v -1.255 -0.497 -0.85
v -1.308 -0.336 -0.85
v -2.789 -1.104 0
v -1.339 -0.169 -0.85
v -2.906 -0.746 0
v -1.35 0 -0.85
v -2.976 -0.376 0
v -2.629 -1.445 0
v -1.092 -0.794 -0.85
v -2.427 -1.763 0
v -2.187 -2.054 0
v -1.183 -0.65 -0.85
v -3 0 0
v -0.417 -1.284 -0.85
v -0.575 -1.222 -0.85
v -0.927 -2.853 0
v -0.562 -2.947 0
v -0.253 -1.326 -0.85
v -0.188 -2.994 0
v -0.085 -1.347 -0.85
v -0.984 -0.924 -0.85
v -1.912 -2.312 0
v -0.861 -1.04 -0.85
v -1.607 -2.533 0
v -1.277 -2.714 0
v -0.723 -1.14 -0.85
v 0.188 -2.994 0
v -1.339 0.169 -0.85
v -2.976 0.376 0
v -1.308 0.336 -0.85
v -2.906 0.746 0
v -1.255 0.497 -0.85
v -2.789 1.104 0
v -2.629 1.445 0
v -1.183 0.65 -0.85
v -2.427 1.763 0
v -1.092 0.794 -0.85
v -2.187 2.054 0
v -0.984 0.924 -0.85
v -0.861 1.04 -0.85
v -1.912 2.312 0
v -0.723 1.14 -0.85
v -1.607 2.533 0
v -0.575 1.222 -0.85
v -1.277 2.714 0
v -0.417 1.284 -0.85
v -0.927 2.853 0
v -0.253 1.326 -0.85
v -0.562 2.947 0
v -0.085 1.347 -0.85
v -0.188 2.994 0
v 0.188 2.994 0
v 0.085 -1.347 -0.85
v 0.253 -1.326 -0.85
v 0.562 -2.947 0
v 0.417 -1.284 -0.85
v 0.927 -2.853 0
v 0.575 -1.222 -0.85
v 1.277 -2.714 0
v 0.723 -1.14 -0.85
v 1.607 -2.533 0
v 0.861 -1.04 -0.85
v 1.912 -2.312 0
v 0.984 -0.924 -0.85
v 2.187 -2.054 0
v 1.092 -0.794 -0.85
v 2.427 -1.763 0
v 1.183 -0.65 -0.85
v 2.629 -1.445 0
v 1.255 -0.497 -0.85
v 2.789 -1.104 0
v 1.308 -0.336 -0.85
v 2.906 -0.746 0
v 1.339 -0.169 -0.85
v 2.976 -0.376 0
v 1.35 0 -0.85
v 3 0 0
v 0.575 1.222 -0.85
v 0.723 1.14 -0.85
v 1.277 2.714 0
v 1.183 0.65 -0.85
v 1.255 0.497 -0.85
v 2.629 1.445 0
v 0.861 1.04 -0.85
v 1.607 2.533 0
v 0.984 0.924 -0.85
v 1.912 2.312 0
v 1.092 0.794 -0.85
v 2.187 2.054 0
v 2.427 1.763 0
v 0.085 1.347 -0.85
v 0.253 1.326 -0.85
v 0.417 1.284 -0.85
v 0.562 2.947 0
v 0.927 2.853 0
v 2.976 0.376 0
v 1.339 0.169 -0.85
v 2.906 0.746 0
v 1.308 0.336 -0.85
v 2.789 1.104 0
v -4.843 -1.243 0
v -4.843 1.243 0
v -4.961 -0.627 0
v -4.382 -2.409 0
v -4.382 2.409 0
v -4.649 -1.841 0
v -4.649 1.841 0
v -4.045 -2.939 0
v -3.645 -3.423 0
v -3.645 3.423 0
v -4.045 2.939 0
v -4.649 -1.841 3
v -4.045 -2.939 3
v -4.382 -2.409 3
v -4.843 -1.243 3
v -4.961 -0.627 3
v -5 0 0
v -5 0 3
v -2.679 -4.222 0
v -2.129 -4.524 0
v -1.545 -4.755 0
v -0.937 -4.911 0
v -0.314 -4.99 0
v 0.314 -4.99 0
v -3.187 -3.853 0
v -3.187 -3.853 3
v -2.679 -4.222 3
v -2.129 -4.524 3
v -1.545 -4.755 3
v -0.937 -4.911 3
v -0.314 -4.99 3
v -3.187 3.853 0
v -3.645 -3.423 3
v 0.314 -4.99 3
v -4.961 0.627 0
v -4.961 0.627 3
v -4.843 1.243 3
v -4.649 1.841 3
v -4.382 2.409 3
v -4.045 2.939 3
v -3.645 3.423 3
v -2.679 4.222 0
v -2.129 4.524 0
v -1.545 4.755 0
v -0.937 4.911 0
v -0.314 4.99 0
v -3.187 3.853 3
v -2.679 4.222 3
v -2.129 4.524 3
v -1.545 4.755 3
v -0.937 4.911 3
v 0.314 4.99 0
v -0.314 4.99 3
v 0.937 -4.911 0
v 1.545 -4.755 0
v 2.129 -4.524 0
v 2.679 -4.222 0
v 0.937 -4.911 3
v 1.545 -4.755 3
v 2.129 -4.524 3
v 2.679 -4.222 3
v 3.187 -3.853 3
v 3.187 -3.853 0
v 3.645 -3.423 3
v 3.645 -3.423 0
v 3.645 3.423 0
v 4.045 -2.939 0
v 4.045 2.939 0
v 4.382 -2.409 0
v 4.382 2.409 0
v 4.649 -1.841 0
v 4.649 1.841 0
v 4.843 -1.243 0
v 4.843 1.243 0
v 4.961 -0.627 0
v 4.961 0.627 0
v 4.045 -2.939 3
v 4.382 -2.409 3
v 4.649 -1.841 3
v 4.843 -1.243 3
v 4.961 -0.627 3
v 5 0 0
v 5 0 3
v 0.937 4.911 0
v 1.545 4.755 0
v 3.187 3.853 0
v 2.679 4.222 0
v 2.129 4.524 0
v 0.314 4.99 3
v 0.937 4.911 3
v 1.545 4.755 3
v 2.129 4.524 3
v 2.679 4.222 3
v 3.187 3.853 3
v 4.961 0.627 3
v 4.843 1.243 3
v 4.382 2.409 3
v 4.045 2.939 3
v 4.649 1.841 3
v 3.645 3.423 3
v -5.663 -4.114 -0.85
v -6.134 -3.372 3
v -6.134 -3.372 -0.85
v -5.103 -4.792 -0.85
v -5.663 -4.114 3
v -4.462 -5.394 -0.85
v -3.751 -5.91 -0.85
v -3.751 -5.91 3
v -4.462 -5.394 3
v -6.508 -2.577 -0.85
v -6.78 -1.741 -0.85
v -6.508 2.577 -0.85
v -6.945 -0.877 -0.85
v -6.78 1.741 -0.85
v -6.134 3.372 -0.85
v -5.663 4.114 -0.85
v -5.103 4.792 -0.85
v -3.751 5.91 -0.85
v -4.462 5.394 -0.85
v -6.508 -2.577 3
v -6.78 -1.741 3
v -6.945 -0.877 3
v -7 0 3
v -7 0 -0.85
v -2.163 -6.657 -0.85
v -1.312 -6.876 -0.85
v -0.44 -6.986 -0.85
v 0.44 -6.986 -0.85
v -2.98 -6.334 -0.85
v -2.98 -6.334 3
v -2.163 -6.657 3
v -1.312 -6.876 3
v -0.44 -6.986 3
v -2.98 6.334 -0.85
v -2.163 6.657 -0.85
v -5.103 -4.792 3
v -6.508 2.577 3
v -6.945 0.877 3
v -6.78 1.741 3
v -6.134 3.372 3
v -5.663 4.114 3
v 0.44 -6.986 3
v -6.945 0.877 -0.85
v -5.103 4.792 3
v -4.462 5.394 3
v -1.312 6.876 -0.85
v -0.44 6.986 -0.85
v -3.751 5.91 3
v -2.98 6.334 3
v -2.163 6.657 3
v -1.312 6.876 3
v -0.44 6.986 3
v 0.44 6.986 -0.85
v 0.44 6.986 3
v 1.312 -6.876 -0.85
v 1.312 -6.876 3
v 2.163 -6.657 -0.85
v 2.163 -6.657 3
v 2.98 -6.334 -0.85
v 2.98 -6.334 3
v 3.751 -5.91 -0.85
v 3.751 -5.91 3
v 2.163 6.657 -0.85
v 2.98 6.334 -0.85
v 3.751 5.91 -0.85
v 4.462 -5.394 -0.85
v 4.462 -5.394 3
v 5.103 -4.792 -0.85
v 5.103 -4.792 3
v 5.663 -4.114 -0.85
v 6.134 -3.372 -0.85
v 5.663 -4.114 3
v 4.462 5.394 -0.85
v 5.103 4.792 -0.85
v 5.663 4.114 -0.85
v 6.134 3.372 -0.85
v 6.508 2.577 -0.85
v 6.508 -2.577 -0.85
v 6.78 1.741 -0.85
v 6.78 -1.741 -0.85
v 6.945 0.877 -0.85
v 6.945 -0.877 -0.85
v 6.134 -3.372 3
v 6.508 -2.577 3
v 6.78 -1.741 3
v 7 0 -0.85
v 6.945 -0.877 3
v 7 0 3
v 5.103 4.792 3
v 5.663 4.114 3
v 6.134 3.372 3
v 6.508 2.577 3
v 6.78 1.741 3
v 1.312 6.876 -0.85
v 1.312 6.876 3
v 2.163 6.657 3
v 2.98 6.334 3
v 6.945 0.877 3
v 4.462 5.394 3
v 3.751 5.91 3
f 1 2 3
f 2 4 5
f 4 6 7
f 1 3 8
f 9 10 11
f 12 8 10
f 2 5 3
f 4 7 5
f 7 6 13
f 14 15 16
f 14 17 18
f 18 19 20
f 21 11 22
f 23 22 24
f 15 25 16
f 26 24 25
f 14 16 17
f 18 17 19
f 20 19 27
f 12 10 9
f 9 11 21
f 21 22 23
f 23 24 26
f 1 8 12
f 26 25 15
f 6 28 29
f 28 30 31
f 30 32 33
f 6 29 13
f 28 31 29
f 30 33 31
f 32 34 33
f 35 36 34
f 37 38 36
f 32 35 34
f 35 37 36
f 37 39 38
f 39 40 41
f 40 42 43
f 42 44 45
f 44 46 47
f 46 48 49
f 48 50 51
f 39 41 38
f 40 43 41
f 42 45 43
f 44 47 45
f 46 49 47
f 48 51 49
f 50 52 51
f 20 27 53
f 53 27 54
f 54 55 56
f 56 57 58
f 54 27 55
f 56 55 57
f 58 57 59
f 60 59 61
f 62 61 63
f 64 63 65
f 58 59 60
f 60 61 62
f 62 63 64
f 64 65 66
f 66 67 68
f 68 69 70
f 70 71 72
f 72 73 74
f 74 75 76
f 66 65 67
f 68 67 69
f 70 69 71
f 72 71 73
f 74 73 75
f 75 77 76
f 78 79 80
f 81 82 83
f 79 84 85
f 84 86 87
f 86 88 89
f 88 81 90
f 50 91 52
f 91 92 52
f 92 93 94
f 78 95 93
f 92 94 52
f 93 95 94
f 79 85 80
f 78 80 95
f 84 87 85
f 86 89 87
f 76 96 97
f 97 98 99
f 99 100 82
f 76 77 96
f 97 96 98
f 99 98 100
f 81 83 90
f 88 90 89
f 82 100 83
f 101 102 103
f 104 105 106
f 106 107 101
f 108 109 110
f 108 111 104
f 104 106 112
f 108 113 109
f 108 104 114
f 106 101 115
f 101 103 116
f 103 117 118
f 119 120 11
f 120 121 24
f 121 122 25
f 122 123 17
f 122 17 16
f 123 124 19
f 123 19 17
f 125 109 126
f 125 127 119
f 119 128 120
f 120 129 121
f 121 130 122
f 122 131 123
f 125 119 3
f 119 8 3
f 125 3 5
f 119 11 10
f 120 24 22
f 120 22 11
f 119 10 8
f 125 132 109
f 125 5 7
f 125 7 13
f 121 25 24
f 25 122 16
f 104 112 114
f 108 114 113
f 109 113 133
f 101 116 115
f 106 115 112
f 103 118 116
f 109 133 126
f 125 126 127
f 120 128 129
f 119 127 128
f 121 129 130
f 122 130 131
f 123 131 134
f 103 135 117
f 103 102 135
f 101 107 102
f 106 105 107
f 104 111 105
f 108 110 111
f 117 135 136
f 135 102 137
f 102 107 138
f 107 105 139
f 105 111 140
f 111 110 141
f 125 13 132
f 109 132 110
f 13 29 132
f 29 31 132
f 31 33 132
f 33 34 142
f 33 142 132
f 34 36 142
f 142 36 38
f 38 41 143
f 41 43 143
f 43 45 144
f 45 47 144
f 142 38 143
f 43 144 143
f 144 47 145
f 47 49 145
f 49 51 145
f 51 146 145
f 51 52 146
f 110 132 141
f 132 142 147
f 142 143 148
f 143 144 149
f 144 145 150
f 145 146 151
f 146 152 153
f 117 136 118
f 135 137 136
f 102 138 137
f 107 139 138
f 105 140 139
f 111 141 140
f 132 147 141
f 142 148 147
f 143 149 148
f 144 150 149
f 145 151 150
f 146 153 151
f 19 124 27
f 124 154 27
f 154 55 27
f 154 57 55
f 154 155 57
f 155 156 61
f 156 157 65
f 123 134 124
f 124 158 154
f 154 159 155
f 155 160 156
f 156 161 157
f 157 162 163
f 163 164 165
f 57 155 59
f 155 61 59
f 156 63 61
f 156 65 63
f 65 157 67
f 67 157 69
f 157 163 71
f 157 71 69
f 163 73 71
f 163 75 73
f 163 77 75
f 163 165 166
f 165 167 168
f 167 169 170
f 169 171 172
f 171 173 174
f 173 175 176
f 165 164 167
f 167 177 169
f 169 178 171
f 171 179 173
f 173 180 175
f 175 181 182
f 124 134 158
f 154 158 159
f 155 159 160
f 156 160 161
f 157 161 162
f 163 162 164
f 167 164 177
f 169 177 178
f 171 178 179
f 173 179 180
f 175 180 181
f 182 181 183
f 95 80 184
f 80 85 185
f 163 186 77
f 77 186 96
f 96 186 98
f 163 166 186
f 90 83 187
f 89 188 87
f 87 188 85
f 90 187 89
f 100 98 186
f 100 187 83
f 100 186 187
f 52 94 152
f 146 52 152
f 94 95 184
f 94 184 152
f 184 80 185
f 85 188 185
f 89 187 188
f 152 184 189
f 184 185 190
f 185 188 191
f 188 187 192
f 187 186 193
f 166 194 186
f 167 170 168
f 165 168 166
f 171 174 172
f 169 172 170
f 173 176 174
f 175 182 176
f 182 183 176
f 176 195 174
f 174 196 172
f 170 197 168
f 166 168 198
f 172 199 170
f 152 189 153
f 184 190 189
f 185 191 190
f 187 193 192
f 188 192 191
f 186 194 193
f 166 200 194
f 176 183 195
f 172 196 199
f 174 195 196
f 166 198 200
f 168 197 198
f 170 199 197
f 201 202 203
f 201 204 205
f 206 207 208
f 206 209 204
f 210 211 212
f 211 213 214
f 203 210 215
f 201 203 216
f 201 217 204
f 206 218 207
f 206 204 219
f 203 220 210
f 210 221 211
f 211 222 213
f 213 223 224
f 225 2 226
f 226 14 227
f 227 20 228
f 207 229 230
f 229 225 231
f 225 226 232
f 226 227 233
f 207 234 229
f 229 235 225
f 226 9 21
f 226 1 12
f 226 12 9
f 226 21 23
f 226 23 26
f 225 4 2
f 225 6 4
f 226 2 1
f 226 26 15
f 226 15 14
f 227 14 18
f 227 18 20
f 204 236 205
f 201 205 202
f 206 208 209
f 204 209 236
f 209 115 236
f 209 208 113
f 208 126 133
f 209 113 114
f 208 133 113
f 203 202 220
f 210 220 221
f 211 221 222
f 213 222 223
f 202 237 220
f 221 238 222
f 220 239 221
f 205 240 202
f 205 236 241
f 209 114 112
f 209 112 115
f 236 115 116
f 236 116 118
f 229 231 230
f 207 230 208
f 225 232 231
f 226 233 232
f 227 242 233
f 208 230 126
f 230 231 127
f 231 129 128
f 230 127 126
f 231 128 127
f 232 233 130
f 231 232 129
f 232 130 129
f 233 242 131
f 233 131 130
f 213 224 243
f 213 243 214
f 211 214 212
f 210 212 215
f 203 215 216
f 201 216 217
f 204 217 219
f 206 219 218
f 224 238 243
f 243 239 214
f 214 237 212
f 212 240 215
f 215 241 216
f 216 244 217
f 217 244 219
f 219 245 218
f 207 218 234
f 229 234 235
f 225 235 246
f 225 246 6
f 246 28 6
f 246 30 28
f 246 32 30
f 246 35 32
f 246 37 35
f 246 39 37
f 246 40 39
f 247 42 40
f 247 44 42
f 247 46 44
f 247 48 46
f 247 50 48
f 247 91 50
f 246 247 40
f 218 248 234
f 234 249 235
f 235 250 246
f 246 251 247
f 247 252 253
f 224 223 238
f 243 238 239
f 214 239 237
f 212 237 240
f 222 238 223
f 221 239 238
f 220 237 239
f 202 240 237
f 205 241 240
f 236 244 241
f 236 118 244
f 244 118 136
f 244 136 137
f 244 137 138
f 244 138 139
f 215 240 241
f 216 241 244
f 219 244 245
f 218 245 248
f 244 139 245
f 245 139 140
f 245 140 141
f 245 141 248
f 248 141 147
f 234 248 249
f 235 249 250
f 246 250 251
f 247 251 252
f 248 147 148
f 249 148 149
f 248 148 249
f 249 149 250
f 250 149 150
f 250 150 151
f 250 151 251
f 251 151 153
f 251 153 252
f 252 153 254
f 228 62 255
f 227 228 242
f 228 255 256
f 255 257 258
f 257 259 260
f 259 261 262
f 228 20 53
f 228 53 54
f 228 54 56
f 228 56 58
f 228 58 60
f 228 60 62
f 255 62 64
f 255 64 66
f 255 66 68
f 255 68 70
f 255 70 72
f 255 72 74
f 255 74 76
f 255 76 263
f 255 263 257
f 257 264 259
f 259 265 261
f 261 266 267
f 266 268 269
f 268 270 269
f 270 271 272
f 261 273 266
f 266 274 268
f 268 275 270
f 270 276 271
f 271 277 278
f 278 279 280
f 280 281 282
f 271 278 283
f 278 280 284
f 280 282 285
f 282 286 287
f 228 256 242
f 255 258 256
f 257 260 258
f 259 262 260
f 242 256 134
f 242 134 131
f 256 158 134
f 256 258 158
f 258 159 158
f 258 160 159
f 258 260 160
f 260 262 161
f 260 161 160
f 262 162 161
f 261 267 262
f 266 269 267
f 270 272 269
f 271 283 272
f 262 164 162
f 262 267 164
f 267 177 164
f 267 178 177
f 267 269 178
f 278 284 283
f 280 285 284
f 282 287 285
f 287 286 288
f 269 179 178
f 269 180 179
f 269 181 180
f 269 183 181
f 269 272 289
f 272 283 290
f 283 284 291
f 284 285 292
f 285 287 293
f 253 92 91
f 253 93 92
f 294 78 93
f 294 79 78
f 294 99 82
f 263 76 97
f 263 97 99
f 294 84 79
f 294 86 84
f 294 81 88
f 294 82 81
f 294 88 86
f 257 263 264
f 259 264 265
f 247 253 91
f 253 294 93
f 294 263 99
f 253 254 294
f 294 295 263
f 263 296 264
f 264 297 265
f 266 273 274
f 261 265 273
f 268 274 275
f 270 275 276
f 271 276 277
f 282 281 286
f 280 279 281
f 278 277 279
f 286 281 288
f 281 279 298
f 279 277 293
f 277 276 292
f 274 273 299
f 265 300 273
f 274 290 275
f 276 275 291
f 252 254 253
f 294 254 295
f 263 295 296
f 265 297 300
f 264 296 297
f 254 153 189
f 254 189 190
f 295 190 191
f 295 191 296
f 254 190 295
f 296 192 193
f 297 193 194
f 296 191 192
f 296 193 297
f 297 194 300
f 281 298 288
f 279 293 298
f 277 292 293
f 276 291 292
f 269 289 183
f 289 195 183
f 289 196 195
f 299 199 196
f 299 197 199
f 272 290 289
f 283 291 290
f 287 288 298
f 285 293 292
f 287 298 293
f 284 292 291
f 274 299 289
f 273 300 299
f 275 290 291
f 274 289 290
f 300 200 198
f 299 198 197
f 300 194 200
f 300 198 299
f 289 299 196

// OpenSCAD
$fn = 50;


difference() {
	union() {
		translate(v = [0, 0, -0.8500000000]) {
			cylinder(h = 3.8500000000, r = 7.0000000000);
		}
	}
	union() {
		translate(v = [0, 0, 0]) {
			rotate(a = [0, 0, 0]) {
				difference() {
					union() {
						translate(v = [0, 0, -3.8500000000]) {
							cylinder(h = 3.8500000000, r = 1.0000000000);
						}
						translate(v = [0, 0, -0.8500000000]) {
							cylinder(h = 0.8500000000, r1 = 1.3500000000, r2 = 3.0000000000);
						}
						translate(v = [0, 0, -3.8500000000]) {
							cylinder(h = 3.8500000000, r = 1.3500000000);
						}
						translate(v = [0, 0, -3.8500000000]) {
							cylinder(h = 3.8500000000, r = 1.0000000000);
						}
					}
					union();
				}
			}
		}
		#cylinder(h = 3, r = 5.0000000000);
	}
}
